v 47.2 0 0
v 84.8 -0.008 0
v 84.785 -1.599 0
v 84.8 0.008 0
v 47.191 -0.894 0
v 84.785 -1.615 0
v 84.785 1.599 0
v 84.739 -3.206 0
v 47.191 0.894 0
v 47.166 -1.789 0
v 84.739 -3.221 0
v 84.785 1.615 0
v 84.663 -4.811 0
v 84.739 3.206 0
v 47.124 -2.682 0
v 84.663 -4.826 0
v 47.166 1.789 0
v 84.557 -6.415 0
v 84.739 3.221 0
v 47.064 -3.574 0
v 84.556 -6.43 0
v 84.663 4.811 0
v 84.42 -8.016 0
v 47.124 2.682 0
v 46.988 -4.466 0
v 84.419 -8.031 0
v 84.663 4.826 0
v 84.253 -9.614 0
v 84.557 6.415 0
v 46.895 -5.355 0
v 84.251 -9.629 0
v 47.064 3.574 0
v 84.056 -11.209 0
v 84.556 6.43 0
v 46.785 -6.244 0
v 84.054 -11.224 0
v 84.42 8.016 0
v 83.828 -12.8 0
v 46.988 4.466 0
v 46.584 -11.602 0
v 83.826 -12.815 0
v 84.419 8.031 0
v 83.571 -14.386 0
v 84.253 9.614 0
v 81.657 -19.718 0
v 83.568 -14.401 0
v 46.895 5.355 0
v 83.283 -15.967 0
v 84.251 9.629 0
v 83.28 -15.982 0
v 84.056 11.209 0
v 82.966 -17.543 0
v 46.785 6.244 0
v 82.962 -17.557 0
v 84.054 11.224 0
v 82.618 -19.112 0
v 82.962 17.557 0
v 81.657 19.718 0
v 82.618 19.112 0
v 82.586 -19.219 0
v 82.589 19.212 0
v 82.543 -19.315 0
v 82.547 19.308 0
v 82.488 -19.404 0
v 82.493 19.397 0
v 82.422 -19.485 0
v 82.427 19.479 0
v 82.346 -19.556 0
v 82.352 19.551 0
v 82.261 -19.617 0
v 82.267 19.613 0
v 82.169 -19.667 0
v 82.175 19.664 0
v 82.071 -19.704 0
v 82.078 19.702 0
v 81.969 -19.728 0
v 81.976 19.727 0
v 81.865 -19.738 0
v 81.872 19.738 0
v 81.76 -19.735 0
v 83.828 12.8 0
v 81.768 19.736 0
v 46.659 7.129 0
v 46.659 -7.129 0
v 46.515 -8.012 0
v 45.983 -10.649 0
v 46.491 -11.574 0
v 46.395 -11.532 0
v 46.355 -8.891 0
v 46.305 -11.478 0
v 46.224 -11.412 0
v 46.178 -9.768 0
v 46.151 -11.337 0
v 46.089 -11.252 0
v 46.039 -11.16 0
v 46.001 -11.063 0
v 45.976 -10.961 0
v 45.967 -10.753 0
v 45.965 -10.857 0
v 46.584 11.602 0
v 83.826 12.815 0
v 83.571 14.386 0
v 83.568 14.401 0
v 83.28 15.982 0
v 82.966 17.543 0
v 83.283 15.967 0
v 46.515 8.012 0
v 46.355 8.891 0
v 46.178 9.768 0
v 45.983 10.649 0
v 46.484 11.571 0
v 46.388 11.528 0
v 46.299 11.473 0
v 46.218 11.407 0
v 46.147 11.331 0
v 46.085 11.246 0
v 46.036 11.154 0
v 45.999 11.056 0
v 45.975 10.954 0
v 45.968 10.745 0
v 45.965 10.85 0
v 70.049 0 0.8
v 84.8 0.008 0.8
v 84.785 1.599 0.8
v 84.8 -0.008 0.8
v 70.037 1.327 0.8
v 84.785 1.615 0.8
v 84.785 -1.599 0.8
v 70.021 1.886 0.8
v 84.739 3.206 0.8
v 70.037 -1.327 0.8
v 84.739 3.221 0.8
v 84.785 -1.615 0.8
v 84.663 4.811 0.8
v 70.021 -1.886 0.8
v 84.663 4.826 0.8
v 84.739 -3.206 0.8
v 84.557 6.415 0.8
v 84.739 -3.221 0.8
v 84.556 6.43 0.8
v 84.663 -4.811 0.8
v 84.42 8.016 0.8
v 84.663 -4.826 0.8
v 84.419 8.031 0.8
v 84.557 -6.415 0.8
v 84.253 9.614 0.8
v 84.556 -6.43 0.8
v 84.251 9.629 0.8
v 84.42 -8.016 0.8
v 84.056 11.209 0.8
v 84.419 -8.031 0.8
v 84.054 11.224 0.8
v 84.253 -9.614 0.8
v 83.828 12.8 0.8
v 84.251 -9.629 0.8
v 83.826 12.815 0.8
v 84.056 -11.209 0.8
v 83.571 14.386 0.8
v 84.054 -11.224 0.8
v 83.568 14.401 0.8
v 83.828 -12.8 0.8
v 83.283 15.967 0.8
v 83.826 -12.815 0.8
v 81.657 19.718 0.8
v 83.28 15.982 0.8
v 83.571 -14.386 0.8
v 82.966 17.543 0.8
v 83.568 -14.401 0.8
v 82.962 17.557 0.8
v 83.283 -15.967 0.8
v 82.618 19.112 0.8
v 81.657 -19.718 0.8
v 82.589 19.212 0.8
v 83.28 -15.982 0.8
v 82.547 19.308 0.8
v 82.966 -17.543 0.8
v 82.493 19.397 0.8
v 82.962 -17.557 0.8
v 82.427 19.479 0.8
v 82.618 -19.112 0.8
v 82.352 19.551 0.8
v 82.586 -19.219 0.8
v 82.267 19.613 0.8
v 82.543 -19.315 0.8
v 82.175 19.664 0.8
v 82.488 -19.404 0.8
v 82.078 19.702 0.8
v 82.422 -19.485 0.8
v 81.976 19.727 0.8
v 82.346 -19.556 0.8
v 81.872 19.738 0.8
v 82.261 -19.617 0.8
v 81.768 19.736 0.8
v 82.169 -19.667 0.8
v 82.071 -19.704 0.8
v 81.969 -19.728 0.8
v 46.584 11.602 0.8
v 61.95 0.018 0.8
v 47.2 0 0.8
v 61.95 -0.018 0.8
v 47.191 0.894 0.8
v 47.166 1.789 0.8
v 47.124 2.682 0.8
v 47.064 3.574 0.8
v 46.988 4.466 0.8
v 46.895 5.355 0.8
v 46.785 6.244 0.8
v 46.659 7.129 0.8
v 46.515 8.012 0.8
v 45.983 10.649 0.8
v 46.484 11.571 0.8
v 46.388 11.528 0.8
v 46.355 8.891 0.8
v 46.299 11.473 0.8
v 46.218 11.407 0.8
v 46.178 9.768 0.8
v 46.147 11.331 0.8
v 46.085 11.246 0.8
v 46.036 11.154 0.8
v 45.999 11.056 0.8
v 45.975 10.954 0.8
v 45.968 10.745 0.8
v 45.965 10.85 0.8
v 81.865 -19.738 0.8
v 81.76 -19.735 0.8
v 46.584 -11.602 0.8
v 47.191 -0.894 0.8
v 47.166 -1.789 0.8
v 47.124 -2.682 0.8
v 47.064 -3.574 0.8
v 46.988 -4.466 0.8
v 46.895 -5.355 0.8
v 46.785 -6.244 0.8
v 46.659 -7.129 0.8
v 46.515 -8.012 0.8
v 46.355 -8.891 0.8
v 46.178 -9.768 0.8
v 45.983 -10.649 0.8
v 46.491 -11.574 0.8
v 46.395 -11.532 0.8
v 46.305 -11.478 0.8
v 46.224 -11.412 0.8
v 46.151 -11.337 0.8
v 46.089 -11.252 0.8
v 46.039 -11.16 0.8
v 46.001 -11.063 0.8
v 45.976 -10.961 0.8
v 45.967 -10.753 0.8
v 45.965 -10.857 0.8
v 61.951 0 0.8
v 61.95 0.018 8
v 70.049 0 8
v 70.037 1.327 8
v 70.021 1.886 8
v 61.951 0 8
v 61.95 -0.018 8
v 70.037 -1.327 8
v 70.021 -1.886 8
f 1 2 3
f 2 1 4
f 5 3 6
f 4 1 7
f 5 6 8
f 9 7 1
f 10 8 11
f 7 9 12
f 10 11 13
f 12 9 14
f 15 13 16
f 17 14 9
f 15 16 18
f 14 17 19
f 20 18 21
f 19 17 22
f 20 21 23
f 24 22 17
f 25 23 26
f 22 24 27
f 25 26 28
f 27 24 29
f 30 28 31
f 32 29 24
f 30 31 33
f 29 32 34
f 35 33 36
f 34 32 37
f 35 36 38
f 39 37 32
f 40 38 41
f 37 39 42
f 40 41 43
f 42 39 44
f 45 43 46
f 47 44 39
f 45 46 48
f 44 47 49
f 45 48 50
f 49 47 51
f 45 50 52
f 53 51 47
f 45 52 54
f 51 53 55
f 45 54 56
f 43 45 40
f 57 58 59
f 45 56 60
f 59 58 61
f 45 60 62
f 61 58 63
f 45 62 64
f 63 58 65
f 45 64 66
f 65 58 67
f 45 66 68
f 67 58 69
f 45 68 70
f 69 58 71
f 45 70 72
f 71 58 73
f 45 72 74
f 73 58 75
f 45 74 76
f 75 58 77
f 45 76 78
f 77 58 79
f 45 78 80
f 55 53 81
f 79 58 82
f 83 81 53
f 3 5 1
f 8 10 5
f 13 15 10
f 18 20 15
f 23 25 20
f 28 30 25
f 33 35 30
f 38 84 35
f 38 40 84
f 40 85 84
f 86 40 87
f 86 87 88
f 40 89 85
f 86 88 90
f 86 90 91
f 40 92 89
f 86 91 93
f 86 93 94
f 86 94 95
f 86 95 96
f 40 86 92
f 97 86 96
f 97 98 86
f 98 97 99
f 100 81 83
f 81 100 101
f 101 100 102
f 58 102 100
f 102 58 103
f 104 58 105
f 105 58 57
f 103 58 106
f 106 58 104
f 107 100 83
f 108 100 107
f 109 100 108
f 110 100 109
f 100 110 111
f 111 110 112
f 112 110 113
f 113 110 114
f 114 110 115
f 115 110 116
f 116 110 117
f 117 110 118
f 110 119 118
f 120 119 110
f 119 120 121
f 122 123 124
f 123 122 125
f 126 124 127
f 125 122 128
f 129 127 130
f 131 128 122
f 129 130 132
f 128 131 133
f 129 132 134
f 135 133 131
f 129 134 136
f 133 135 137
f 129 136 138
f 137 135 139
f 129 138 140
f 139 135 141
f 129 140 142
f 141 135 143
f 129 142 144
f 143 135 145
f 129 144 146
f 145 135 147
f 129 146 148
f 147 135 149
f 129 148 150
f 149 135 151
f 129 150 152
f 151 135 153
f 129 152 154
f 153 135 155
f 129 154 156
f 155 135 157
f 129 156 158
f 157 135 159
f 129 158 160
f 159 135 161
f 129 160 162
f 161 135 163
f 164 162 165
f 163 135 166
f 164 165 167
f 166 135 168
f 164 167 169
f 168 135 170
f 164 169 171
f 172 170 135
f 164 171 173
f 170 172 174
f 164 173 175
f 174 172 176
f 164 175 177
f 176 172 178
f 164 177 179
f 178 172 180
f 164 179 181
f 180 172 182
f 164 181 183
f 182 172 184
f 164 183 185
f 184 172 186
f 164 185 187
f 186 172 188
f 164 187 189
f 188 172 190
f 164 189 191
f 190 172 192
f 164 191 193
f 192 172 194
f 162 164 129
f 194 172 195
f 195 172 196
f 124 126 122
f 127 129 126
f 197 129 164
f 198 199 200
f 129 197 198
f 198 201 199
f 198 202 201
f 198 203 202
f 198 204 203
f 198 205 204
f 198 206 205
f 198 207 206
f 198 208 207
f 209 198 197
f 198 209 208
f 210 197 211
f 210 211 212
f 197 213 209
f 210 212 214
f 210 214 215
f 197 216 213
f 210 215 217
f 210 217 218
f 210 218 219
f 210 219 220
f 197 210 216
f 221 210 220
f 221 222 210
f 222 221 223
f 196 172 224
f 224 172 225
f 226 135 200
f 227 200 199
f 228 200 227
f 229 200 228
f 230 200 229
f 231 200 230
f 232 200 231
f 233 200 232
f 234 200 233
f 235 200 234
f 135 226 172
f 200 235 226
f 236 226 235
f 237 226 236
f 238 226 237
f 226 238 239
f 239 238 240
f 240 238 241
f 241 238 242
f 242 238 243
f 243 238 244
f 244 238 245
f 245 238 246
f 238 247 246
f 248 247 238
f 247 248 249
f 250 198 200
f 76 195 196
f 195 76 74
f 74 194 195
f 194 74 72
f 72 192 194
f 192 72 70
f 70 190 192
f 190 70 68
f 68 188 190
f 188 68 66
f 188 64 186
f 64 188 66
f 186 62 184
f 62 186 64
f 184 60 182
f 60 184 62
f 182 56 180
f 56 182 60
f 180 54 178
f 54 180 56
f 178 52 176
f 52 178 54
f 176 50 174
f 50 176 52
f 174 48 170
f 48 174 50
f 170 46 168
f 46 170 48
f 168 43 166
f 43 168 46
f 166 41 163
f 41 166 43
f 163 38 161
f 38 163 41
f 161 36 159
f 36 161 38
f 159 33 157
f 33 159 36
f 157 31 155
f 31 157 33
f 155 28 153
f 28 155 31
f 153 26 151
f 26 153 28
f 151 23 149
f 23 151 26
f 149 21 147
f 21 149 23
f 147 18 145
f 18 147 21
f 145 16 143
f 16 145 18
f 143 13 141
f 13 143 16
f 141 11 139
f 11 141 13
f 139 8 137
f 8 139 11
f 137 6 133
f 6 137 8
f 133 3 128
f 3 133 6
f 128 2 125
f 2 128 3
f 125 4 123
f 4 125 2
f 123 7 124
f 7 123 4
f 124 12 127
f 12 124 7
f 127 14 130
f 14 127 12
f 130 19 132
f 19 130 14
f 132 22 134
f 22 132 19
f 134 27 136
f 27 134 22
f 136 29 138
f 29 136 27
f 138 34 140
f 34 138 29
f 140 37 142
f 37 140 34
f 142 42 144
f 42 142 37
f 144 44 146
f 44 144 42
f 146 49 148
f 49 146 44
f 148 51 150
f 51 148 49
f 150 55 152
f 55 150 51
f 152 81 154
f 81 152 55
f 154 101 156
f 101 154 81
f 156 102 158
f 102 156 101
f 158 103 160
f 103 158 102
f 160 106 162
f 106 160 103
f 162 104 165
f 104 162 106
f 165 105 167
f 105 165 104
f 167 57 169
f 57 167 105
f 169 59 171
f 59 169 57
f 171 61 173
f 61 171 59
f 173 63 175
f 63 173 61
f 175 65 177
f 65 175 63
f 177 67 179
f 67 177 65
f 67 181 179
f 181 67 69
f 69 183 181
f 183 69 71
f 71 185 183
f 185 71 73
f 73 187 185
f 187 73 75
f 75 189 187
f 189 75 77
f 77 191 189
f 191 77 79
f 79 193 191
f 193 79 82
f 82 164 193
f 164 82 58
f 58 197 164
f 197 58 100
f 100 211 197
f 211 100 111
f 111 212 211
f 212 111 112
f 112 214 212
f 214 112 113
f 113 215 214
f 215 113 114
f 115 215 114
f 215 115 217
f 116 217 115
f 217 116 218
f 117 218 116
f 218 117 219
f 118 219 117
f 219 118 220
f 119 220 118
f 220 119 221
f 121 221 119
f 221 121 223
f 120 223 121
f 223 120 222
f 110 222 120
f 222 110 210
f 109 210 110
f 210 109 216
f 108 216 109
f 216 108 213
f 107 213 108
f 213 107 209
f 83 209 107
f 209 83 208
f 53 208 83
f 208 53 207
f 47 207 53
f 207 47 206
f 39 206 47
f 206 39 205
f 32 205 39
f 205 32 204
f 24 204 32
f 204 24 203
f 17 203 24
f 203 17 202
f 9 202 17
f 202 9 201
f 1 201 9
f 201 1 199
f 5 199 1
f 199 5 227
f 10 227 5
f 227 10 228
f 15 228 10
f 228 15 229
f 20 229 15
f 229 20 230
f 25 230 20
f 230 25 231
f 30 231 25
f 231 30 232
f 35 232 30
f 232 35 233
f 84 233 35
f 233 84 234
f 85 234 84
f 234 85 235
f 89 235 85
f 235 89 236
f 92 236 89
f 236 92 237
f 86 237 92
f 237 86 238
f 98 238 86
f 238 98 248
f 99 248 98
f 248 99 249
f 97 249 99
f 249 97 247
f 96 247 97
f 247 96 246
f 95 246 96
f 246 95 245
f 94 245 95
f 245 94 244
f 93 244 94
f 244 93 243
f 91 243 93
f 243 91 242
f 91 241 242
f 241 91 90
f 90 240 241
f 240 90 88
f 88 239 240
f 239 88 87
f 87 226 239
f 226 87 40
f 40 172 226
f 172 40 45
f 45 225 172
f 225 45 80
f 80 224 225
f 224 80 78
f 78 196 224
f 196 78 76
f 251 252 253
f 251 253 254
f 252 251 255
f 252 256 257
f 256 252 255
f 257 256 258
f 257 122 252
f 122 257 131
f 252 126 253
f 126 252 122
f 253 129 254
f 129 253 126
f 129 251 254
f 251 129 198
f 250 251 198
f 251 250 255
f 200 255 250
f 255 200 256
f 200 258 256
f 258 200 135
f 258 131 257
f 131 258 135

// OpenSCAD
// file: parameters.scad
// =============================================================================
// Gen-BY — nightly 2026-10-11 (physics_scorer, honest magpylib watts)
// Stator-only upgrade for an existing Gen-BU: the R66 rotors and Ø158 steel are reused unchanged, and a new 12-bobbin stator with thinner 7.2 mm copper (gap 10.70 → 9.80 mm) and longer r48–84 bobbins (more copper outside the magnet ring) replaces the old one, together with a shorter gap sleeve and wider-spaced frame rods. It is the modular swap path: no new magnets or steel.
// Clocking 0 deg (magnets N facing S) + D-flat keyed bore + index notch + flip-symmetric hole map.
// Windable 2-piece bobbin; turns = physics_scorer turns_fit; copper only between flanges.
// Steel back-iron: 2× Ø158 × 4.76 mm (3/16") mild-steel discs (steel_backiron_disc.dxf); magnets sit ON the steel
// (through-pockets) -> score with --back-iron. Night 2026-10-11.
// =============================================================================
topology            = "dual_rotor";

// --- Wire / winding (physics_scorer winding-fit) -------------------------------
wire_awg            = 26;
wire_od             = 0.45;     // insulated OD mm (bare 0.405)
fill_realistic      = 0.65;     // insulated-wire area / window (DENSE layered wind with a jig; scorer cap 0.65)
turns               = 410;       // = physics_scorer turns_fit (do NOT raise)
coil_former_type    = "bobbin";
coil_core_inset     = 13.95;     // radial copper build: hub = copper boundary inset by this
wind_build_axial    = 0.0;      // nothing proud of the flanges
wind_build_radial   = 0.0;

// --- Bobbin (base + lid) ---------------------------------------------------------
coil_id_r           = 48.00;    // copper boundary sector
coil_od_r           = 84.00;
span_deg            = 26.06;    // = pitch - 2*asin((wall+0.85)/coil_id_r) -> >=1.2 mm stator web
former_web          = 7.20;     // copper height between flanges (TALL copper: steel keeps Bz up)
flange_t            = 0.80;     // >= 0.8 mm FDM wall rule (tall winds push on the flanges)
wall                = 0.80;     // flange lip beyond copper
former_bare_h       = former_web + 2 * flange_t;
coil_envelope_h     = former_bare_h + 2 * wind_build_axial;
tab_w               = 7.0;
tab_len             = 7.0;
tab_h               = former_bare_h / 2;
pin_d               = 1.9;      // 1.75 mm filament locating pin
coil_mount_r        = coil_od_r + 0.2 + 4.0;
lead_y              = 1.6;
lead_slot_w         = 0.9;
lead_groove_d       = 0.6;

// --- Gap -------------------------------------------------------------------------
run_clear           = 0.50;     // rotor face -> flange
gap_spacer_h        = run_clear + wind_build_axial;
m2m                 = coil_envelope_h + 2 * run_clear;   // rotor face to rotor face (= gap_sleeve length)

// --- Stator ----------------------------------------------------------------------
coil_stations       = 12;
bay_clear           = 0.25;
stator_thick        = former_bare_h;                        // bobbins flush both faces
stator_od           = 186.0;
shaft_clear_stator  = 14.0;     // stator is static; gap sleeve OD 12 spins inside

// --- Rotor(s) --------------------------------------------------------------------
magnet_Br           = 1.43;     // N52
magnet_d_large      = 20.0;
magnet_h_large      = 5.0;      // one O20x5 per pocket
magnet_h_small      = 5.0;      // unused: no O5 pockets in this kit
halbach_magnetisation = "none";  // NO O5 assist magnets in this kit (scan: they lower the 4-pole score)
rotor_b_same_axis   = true;     // same-index magnets share one axis: N faces S across the gap
large_pocket_d      = 20.3;
small_pocket_d      = 5.3;
pocket_h            = 5.00;     // THROUGH the carrier: magnet back face sits on the steel disc (FLUSH seat: carrier = magnet height, magnet face level with the rotor face)
large_n             = 8;
R_large             = 66.0;
small_r_list        = [];       // no O5 pockets
carrier_od          = 158.0;
carrier_thick       = pocket_h;
hub_h               = 12.0;     // > steel_t + insert: radial set-screw clears the steel
hub_od              = 24.0;     // slim hub so the M4 brace rods fit at R~18 inside the coil ring
hub_insert_d        = 4.0;      // M3 heat-set insert, radial, bears on the D-flat
rotor_b_offset_deg  = 0.0;      // CLOCKING: magnets directly opposite
shaft_key           = "dflat";
dflat_depth         = 0.5;      // 8 mm shaft with 0.5 mm flat (7.5 across flat)
index_notch_d       = 3.0;

// --- Steel back-iron (buyable laser-cut) -------------------------------------------
steel_t             = 4.76;      // mild steel thickness (image method ignores it; sized from steel_flux.py so the return path stays well below saturation)
steel_center_hole   = 26.0;     // slips over the rotor hub (OD 24)
steel_od            = carrier_od;   // steel disc OD = rotor carrier OD

// --- Modular MAX interface ----------------------------------------------------------
shaft_bore          = 8.35;
dflat_x             = 4.0 - dflat_depth + (shaft_bore - 8.0) / 2;
bearing_d           = 21.85;
bearing_h           = 7.2;
m3_clear            = 3.5;
bolt_r_inner        = 30.0;     // M3 steel-disc clamp bolts (inside the magnet ring)
bolt_n_inner        = 4;
bolt_inner_angles   = [0, 90, 180, 270];
bolt_r_outer        = 44.0;     // second M3 steel-disc clamp ring
bolt_outer_angles   = [67.5, 112.5, 247.5, 292.5];
flange_bolt_r       = 88.0;     // frame rods: OUTSIDE the rotor OD (rotors spin inside them)
flange_bolt_n       = 4;
flange_bolt_offset  = 45.00;    // between coil stations -> never cuts a lead groove/tab
brace_r             = 18.0;
brace_d             = 4.3;      // temporary M4 jack rods (assembly only)
brace_n             = 4;
brace_angles        = [45, 135, 225, 315];          // flip-symmetric

spacer_pad_od       = 14.0;
spacer_pad_id       = m3_clear;
endbell_od          = 186.0;
endbell_thick       = 8.0;
endbell_shaft_clear = 10.0;
collar_h            = 10.0;
standoff_od         = 9.0;
frame_standoff_h    = run_clear + carrier_thick + hub_h + collar_h + 2.0;
sleeve_od           = 12.0;
plate_max_mm        = 410;

$fn = 64;
// main file
// Gen-BY — bobbin BASE (bottom flange + hub). Print x12, flange down. Wind 26 AWG x 410 t around
// the hub with the LID glued on (coil_lid.stl). Copper lives ONLY between the flanges (no proud winds).
include <parameters.scad>;
$fn = 48;
module sector_2d(r_in, r_out, ang) {
    polygon([
        for (a = [-ang/2 : ang/24 : ang/2]) [r_in*cos(a), r_in*sin(a)],
        for (a = [ang/2 : -ang/24 : -ang/2]) [r_out*cos(a), r_out*sin(a)]
    ]);
}
module footprint_2d() { offset(r=wall) sector_2d(coil_id_r, coil_od_r, span_deg); }
module hub_2d()       { offset(delta=-coil_core_inset) sector_2d(coil_id_r, coil_od_r, span_deg); }

union() {
    linear_extrude(flange_t) footprint_2d();
    translate([0, 0, flange_t - 0.01]) linear_extrude(former_web + 0.01) hub_2d();
}
